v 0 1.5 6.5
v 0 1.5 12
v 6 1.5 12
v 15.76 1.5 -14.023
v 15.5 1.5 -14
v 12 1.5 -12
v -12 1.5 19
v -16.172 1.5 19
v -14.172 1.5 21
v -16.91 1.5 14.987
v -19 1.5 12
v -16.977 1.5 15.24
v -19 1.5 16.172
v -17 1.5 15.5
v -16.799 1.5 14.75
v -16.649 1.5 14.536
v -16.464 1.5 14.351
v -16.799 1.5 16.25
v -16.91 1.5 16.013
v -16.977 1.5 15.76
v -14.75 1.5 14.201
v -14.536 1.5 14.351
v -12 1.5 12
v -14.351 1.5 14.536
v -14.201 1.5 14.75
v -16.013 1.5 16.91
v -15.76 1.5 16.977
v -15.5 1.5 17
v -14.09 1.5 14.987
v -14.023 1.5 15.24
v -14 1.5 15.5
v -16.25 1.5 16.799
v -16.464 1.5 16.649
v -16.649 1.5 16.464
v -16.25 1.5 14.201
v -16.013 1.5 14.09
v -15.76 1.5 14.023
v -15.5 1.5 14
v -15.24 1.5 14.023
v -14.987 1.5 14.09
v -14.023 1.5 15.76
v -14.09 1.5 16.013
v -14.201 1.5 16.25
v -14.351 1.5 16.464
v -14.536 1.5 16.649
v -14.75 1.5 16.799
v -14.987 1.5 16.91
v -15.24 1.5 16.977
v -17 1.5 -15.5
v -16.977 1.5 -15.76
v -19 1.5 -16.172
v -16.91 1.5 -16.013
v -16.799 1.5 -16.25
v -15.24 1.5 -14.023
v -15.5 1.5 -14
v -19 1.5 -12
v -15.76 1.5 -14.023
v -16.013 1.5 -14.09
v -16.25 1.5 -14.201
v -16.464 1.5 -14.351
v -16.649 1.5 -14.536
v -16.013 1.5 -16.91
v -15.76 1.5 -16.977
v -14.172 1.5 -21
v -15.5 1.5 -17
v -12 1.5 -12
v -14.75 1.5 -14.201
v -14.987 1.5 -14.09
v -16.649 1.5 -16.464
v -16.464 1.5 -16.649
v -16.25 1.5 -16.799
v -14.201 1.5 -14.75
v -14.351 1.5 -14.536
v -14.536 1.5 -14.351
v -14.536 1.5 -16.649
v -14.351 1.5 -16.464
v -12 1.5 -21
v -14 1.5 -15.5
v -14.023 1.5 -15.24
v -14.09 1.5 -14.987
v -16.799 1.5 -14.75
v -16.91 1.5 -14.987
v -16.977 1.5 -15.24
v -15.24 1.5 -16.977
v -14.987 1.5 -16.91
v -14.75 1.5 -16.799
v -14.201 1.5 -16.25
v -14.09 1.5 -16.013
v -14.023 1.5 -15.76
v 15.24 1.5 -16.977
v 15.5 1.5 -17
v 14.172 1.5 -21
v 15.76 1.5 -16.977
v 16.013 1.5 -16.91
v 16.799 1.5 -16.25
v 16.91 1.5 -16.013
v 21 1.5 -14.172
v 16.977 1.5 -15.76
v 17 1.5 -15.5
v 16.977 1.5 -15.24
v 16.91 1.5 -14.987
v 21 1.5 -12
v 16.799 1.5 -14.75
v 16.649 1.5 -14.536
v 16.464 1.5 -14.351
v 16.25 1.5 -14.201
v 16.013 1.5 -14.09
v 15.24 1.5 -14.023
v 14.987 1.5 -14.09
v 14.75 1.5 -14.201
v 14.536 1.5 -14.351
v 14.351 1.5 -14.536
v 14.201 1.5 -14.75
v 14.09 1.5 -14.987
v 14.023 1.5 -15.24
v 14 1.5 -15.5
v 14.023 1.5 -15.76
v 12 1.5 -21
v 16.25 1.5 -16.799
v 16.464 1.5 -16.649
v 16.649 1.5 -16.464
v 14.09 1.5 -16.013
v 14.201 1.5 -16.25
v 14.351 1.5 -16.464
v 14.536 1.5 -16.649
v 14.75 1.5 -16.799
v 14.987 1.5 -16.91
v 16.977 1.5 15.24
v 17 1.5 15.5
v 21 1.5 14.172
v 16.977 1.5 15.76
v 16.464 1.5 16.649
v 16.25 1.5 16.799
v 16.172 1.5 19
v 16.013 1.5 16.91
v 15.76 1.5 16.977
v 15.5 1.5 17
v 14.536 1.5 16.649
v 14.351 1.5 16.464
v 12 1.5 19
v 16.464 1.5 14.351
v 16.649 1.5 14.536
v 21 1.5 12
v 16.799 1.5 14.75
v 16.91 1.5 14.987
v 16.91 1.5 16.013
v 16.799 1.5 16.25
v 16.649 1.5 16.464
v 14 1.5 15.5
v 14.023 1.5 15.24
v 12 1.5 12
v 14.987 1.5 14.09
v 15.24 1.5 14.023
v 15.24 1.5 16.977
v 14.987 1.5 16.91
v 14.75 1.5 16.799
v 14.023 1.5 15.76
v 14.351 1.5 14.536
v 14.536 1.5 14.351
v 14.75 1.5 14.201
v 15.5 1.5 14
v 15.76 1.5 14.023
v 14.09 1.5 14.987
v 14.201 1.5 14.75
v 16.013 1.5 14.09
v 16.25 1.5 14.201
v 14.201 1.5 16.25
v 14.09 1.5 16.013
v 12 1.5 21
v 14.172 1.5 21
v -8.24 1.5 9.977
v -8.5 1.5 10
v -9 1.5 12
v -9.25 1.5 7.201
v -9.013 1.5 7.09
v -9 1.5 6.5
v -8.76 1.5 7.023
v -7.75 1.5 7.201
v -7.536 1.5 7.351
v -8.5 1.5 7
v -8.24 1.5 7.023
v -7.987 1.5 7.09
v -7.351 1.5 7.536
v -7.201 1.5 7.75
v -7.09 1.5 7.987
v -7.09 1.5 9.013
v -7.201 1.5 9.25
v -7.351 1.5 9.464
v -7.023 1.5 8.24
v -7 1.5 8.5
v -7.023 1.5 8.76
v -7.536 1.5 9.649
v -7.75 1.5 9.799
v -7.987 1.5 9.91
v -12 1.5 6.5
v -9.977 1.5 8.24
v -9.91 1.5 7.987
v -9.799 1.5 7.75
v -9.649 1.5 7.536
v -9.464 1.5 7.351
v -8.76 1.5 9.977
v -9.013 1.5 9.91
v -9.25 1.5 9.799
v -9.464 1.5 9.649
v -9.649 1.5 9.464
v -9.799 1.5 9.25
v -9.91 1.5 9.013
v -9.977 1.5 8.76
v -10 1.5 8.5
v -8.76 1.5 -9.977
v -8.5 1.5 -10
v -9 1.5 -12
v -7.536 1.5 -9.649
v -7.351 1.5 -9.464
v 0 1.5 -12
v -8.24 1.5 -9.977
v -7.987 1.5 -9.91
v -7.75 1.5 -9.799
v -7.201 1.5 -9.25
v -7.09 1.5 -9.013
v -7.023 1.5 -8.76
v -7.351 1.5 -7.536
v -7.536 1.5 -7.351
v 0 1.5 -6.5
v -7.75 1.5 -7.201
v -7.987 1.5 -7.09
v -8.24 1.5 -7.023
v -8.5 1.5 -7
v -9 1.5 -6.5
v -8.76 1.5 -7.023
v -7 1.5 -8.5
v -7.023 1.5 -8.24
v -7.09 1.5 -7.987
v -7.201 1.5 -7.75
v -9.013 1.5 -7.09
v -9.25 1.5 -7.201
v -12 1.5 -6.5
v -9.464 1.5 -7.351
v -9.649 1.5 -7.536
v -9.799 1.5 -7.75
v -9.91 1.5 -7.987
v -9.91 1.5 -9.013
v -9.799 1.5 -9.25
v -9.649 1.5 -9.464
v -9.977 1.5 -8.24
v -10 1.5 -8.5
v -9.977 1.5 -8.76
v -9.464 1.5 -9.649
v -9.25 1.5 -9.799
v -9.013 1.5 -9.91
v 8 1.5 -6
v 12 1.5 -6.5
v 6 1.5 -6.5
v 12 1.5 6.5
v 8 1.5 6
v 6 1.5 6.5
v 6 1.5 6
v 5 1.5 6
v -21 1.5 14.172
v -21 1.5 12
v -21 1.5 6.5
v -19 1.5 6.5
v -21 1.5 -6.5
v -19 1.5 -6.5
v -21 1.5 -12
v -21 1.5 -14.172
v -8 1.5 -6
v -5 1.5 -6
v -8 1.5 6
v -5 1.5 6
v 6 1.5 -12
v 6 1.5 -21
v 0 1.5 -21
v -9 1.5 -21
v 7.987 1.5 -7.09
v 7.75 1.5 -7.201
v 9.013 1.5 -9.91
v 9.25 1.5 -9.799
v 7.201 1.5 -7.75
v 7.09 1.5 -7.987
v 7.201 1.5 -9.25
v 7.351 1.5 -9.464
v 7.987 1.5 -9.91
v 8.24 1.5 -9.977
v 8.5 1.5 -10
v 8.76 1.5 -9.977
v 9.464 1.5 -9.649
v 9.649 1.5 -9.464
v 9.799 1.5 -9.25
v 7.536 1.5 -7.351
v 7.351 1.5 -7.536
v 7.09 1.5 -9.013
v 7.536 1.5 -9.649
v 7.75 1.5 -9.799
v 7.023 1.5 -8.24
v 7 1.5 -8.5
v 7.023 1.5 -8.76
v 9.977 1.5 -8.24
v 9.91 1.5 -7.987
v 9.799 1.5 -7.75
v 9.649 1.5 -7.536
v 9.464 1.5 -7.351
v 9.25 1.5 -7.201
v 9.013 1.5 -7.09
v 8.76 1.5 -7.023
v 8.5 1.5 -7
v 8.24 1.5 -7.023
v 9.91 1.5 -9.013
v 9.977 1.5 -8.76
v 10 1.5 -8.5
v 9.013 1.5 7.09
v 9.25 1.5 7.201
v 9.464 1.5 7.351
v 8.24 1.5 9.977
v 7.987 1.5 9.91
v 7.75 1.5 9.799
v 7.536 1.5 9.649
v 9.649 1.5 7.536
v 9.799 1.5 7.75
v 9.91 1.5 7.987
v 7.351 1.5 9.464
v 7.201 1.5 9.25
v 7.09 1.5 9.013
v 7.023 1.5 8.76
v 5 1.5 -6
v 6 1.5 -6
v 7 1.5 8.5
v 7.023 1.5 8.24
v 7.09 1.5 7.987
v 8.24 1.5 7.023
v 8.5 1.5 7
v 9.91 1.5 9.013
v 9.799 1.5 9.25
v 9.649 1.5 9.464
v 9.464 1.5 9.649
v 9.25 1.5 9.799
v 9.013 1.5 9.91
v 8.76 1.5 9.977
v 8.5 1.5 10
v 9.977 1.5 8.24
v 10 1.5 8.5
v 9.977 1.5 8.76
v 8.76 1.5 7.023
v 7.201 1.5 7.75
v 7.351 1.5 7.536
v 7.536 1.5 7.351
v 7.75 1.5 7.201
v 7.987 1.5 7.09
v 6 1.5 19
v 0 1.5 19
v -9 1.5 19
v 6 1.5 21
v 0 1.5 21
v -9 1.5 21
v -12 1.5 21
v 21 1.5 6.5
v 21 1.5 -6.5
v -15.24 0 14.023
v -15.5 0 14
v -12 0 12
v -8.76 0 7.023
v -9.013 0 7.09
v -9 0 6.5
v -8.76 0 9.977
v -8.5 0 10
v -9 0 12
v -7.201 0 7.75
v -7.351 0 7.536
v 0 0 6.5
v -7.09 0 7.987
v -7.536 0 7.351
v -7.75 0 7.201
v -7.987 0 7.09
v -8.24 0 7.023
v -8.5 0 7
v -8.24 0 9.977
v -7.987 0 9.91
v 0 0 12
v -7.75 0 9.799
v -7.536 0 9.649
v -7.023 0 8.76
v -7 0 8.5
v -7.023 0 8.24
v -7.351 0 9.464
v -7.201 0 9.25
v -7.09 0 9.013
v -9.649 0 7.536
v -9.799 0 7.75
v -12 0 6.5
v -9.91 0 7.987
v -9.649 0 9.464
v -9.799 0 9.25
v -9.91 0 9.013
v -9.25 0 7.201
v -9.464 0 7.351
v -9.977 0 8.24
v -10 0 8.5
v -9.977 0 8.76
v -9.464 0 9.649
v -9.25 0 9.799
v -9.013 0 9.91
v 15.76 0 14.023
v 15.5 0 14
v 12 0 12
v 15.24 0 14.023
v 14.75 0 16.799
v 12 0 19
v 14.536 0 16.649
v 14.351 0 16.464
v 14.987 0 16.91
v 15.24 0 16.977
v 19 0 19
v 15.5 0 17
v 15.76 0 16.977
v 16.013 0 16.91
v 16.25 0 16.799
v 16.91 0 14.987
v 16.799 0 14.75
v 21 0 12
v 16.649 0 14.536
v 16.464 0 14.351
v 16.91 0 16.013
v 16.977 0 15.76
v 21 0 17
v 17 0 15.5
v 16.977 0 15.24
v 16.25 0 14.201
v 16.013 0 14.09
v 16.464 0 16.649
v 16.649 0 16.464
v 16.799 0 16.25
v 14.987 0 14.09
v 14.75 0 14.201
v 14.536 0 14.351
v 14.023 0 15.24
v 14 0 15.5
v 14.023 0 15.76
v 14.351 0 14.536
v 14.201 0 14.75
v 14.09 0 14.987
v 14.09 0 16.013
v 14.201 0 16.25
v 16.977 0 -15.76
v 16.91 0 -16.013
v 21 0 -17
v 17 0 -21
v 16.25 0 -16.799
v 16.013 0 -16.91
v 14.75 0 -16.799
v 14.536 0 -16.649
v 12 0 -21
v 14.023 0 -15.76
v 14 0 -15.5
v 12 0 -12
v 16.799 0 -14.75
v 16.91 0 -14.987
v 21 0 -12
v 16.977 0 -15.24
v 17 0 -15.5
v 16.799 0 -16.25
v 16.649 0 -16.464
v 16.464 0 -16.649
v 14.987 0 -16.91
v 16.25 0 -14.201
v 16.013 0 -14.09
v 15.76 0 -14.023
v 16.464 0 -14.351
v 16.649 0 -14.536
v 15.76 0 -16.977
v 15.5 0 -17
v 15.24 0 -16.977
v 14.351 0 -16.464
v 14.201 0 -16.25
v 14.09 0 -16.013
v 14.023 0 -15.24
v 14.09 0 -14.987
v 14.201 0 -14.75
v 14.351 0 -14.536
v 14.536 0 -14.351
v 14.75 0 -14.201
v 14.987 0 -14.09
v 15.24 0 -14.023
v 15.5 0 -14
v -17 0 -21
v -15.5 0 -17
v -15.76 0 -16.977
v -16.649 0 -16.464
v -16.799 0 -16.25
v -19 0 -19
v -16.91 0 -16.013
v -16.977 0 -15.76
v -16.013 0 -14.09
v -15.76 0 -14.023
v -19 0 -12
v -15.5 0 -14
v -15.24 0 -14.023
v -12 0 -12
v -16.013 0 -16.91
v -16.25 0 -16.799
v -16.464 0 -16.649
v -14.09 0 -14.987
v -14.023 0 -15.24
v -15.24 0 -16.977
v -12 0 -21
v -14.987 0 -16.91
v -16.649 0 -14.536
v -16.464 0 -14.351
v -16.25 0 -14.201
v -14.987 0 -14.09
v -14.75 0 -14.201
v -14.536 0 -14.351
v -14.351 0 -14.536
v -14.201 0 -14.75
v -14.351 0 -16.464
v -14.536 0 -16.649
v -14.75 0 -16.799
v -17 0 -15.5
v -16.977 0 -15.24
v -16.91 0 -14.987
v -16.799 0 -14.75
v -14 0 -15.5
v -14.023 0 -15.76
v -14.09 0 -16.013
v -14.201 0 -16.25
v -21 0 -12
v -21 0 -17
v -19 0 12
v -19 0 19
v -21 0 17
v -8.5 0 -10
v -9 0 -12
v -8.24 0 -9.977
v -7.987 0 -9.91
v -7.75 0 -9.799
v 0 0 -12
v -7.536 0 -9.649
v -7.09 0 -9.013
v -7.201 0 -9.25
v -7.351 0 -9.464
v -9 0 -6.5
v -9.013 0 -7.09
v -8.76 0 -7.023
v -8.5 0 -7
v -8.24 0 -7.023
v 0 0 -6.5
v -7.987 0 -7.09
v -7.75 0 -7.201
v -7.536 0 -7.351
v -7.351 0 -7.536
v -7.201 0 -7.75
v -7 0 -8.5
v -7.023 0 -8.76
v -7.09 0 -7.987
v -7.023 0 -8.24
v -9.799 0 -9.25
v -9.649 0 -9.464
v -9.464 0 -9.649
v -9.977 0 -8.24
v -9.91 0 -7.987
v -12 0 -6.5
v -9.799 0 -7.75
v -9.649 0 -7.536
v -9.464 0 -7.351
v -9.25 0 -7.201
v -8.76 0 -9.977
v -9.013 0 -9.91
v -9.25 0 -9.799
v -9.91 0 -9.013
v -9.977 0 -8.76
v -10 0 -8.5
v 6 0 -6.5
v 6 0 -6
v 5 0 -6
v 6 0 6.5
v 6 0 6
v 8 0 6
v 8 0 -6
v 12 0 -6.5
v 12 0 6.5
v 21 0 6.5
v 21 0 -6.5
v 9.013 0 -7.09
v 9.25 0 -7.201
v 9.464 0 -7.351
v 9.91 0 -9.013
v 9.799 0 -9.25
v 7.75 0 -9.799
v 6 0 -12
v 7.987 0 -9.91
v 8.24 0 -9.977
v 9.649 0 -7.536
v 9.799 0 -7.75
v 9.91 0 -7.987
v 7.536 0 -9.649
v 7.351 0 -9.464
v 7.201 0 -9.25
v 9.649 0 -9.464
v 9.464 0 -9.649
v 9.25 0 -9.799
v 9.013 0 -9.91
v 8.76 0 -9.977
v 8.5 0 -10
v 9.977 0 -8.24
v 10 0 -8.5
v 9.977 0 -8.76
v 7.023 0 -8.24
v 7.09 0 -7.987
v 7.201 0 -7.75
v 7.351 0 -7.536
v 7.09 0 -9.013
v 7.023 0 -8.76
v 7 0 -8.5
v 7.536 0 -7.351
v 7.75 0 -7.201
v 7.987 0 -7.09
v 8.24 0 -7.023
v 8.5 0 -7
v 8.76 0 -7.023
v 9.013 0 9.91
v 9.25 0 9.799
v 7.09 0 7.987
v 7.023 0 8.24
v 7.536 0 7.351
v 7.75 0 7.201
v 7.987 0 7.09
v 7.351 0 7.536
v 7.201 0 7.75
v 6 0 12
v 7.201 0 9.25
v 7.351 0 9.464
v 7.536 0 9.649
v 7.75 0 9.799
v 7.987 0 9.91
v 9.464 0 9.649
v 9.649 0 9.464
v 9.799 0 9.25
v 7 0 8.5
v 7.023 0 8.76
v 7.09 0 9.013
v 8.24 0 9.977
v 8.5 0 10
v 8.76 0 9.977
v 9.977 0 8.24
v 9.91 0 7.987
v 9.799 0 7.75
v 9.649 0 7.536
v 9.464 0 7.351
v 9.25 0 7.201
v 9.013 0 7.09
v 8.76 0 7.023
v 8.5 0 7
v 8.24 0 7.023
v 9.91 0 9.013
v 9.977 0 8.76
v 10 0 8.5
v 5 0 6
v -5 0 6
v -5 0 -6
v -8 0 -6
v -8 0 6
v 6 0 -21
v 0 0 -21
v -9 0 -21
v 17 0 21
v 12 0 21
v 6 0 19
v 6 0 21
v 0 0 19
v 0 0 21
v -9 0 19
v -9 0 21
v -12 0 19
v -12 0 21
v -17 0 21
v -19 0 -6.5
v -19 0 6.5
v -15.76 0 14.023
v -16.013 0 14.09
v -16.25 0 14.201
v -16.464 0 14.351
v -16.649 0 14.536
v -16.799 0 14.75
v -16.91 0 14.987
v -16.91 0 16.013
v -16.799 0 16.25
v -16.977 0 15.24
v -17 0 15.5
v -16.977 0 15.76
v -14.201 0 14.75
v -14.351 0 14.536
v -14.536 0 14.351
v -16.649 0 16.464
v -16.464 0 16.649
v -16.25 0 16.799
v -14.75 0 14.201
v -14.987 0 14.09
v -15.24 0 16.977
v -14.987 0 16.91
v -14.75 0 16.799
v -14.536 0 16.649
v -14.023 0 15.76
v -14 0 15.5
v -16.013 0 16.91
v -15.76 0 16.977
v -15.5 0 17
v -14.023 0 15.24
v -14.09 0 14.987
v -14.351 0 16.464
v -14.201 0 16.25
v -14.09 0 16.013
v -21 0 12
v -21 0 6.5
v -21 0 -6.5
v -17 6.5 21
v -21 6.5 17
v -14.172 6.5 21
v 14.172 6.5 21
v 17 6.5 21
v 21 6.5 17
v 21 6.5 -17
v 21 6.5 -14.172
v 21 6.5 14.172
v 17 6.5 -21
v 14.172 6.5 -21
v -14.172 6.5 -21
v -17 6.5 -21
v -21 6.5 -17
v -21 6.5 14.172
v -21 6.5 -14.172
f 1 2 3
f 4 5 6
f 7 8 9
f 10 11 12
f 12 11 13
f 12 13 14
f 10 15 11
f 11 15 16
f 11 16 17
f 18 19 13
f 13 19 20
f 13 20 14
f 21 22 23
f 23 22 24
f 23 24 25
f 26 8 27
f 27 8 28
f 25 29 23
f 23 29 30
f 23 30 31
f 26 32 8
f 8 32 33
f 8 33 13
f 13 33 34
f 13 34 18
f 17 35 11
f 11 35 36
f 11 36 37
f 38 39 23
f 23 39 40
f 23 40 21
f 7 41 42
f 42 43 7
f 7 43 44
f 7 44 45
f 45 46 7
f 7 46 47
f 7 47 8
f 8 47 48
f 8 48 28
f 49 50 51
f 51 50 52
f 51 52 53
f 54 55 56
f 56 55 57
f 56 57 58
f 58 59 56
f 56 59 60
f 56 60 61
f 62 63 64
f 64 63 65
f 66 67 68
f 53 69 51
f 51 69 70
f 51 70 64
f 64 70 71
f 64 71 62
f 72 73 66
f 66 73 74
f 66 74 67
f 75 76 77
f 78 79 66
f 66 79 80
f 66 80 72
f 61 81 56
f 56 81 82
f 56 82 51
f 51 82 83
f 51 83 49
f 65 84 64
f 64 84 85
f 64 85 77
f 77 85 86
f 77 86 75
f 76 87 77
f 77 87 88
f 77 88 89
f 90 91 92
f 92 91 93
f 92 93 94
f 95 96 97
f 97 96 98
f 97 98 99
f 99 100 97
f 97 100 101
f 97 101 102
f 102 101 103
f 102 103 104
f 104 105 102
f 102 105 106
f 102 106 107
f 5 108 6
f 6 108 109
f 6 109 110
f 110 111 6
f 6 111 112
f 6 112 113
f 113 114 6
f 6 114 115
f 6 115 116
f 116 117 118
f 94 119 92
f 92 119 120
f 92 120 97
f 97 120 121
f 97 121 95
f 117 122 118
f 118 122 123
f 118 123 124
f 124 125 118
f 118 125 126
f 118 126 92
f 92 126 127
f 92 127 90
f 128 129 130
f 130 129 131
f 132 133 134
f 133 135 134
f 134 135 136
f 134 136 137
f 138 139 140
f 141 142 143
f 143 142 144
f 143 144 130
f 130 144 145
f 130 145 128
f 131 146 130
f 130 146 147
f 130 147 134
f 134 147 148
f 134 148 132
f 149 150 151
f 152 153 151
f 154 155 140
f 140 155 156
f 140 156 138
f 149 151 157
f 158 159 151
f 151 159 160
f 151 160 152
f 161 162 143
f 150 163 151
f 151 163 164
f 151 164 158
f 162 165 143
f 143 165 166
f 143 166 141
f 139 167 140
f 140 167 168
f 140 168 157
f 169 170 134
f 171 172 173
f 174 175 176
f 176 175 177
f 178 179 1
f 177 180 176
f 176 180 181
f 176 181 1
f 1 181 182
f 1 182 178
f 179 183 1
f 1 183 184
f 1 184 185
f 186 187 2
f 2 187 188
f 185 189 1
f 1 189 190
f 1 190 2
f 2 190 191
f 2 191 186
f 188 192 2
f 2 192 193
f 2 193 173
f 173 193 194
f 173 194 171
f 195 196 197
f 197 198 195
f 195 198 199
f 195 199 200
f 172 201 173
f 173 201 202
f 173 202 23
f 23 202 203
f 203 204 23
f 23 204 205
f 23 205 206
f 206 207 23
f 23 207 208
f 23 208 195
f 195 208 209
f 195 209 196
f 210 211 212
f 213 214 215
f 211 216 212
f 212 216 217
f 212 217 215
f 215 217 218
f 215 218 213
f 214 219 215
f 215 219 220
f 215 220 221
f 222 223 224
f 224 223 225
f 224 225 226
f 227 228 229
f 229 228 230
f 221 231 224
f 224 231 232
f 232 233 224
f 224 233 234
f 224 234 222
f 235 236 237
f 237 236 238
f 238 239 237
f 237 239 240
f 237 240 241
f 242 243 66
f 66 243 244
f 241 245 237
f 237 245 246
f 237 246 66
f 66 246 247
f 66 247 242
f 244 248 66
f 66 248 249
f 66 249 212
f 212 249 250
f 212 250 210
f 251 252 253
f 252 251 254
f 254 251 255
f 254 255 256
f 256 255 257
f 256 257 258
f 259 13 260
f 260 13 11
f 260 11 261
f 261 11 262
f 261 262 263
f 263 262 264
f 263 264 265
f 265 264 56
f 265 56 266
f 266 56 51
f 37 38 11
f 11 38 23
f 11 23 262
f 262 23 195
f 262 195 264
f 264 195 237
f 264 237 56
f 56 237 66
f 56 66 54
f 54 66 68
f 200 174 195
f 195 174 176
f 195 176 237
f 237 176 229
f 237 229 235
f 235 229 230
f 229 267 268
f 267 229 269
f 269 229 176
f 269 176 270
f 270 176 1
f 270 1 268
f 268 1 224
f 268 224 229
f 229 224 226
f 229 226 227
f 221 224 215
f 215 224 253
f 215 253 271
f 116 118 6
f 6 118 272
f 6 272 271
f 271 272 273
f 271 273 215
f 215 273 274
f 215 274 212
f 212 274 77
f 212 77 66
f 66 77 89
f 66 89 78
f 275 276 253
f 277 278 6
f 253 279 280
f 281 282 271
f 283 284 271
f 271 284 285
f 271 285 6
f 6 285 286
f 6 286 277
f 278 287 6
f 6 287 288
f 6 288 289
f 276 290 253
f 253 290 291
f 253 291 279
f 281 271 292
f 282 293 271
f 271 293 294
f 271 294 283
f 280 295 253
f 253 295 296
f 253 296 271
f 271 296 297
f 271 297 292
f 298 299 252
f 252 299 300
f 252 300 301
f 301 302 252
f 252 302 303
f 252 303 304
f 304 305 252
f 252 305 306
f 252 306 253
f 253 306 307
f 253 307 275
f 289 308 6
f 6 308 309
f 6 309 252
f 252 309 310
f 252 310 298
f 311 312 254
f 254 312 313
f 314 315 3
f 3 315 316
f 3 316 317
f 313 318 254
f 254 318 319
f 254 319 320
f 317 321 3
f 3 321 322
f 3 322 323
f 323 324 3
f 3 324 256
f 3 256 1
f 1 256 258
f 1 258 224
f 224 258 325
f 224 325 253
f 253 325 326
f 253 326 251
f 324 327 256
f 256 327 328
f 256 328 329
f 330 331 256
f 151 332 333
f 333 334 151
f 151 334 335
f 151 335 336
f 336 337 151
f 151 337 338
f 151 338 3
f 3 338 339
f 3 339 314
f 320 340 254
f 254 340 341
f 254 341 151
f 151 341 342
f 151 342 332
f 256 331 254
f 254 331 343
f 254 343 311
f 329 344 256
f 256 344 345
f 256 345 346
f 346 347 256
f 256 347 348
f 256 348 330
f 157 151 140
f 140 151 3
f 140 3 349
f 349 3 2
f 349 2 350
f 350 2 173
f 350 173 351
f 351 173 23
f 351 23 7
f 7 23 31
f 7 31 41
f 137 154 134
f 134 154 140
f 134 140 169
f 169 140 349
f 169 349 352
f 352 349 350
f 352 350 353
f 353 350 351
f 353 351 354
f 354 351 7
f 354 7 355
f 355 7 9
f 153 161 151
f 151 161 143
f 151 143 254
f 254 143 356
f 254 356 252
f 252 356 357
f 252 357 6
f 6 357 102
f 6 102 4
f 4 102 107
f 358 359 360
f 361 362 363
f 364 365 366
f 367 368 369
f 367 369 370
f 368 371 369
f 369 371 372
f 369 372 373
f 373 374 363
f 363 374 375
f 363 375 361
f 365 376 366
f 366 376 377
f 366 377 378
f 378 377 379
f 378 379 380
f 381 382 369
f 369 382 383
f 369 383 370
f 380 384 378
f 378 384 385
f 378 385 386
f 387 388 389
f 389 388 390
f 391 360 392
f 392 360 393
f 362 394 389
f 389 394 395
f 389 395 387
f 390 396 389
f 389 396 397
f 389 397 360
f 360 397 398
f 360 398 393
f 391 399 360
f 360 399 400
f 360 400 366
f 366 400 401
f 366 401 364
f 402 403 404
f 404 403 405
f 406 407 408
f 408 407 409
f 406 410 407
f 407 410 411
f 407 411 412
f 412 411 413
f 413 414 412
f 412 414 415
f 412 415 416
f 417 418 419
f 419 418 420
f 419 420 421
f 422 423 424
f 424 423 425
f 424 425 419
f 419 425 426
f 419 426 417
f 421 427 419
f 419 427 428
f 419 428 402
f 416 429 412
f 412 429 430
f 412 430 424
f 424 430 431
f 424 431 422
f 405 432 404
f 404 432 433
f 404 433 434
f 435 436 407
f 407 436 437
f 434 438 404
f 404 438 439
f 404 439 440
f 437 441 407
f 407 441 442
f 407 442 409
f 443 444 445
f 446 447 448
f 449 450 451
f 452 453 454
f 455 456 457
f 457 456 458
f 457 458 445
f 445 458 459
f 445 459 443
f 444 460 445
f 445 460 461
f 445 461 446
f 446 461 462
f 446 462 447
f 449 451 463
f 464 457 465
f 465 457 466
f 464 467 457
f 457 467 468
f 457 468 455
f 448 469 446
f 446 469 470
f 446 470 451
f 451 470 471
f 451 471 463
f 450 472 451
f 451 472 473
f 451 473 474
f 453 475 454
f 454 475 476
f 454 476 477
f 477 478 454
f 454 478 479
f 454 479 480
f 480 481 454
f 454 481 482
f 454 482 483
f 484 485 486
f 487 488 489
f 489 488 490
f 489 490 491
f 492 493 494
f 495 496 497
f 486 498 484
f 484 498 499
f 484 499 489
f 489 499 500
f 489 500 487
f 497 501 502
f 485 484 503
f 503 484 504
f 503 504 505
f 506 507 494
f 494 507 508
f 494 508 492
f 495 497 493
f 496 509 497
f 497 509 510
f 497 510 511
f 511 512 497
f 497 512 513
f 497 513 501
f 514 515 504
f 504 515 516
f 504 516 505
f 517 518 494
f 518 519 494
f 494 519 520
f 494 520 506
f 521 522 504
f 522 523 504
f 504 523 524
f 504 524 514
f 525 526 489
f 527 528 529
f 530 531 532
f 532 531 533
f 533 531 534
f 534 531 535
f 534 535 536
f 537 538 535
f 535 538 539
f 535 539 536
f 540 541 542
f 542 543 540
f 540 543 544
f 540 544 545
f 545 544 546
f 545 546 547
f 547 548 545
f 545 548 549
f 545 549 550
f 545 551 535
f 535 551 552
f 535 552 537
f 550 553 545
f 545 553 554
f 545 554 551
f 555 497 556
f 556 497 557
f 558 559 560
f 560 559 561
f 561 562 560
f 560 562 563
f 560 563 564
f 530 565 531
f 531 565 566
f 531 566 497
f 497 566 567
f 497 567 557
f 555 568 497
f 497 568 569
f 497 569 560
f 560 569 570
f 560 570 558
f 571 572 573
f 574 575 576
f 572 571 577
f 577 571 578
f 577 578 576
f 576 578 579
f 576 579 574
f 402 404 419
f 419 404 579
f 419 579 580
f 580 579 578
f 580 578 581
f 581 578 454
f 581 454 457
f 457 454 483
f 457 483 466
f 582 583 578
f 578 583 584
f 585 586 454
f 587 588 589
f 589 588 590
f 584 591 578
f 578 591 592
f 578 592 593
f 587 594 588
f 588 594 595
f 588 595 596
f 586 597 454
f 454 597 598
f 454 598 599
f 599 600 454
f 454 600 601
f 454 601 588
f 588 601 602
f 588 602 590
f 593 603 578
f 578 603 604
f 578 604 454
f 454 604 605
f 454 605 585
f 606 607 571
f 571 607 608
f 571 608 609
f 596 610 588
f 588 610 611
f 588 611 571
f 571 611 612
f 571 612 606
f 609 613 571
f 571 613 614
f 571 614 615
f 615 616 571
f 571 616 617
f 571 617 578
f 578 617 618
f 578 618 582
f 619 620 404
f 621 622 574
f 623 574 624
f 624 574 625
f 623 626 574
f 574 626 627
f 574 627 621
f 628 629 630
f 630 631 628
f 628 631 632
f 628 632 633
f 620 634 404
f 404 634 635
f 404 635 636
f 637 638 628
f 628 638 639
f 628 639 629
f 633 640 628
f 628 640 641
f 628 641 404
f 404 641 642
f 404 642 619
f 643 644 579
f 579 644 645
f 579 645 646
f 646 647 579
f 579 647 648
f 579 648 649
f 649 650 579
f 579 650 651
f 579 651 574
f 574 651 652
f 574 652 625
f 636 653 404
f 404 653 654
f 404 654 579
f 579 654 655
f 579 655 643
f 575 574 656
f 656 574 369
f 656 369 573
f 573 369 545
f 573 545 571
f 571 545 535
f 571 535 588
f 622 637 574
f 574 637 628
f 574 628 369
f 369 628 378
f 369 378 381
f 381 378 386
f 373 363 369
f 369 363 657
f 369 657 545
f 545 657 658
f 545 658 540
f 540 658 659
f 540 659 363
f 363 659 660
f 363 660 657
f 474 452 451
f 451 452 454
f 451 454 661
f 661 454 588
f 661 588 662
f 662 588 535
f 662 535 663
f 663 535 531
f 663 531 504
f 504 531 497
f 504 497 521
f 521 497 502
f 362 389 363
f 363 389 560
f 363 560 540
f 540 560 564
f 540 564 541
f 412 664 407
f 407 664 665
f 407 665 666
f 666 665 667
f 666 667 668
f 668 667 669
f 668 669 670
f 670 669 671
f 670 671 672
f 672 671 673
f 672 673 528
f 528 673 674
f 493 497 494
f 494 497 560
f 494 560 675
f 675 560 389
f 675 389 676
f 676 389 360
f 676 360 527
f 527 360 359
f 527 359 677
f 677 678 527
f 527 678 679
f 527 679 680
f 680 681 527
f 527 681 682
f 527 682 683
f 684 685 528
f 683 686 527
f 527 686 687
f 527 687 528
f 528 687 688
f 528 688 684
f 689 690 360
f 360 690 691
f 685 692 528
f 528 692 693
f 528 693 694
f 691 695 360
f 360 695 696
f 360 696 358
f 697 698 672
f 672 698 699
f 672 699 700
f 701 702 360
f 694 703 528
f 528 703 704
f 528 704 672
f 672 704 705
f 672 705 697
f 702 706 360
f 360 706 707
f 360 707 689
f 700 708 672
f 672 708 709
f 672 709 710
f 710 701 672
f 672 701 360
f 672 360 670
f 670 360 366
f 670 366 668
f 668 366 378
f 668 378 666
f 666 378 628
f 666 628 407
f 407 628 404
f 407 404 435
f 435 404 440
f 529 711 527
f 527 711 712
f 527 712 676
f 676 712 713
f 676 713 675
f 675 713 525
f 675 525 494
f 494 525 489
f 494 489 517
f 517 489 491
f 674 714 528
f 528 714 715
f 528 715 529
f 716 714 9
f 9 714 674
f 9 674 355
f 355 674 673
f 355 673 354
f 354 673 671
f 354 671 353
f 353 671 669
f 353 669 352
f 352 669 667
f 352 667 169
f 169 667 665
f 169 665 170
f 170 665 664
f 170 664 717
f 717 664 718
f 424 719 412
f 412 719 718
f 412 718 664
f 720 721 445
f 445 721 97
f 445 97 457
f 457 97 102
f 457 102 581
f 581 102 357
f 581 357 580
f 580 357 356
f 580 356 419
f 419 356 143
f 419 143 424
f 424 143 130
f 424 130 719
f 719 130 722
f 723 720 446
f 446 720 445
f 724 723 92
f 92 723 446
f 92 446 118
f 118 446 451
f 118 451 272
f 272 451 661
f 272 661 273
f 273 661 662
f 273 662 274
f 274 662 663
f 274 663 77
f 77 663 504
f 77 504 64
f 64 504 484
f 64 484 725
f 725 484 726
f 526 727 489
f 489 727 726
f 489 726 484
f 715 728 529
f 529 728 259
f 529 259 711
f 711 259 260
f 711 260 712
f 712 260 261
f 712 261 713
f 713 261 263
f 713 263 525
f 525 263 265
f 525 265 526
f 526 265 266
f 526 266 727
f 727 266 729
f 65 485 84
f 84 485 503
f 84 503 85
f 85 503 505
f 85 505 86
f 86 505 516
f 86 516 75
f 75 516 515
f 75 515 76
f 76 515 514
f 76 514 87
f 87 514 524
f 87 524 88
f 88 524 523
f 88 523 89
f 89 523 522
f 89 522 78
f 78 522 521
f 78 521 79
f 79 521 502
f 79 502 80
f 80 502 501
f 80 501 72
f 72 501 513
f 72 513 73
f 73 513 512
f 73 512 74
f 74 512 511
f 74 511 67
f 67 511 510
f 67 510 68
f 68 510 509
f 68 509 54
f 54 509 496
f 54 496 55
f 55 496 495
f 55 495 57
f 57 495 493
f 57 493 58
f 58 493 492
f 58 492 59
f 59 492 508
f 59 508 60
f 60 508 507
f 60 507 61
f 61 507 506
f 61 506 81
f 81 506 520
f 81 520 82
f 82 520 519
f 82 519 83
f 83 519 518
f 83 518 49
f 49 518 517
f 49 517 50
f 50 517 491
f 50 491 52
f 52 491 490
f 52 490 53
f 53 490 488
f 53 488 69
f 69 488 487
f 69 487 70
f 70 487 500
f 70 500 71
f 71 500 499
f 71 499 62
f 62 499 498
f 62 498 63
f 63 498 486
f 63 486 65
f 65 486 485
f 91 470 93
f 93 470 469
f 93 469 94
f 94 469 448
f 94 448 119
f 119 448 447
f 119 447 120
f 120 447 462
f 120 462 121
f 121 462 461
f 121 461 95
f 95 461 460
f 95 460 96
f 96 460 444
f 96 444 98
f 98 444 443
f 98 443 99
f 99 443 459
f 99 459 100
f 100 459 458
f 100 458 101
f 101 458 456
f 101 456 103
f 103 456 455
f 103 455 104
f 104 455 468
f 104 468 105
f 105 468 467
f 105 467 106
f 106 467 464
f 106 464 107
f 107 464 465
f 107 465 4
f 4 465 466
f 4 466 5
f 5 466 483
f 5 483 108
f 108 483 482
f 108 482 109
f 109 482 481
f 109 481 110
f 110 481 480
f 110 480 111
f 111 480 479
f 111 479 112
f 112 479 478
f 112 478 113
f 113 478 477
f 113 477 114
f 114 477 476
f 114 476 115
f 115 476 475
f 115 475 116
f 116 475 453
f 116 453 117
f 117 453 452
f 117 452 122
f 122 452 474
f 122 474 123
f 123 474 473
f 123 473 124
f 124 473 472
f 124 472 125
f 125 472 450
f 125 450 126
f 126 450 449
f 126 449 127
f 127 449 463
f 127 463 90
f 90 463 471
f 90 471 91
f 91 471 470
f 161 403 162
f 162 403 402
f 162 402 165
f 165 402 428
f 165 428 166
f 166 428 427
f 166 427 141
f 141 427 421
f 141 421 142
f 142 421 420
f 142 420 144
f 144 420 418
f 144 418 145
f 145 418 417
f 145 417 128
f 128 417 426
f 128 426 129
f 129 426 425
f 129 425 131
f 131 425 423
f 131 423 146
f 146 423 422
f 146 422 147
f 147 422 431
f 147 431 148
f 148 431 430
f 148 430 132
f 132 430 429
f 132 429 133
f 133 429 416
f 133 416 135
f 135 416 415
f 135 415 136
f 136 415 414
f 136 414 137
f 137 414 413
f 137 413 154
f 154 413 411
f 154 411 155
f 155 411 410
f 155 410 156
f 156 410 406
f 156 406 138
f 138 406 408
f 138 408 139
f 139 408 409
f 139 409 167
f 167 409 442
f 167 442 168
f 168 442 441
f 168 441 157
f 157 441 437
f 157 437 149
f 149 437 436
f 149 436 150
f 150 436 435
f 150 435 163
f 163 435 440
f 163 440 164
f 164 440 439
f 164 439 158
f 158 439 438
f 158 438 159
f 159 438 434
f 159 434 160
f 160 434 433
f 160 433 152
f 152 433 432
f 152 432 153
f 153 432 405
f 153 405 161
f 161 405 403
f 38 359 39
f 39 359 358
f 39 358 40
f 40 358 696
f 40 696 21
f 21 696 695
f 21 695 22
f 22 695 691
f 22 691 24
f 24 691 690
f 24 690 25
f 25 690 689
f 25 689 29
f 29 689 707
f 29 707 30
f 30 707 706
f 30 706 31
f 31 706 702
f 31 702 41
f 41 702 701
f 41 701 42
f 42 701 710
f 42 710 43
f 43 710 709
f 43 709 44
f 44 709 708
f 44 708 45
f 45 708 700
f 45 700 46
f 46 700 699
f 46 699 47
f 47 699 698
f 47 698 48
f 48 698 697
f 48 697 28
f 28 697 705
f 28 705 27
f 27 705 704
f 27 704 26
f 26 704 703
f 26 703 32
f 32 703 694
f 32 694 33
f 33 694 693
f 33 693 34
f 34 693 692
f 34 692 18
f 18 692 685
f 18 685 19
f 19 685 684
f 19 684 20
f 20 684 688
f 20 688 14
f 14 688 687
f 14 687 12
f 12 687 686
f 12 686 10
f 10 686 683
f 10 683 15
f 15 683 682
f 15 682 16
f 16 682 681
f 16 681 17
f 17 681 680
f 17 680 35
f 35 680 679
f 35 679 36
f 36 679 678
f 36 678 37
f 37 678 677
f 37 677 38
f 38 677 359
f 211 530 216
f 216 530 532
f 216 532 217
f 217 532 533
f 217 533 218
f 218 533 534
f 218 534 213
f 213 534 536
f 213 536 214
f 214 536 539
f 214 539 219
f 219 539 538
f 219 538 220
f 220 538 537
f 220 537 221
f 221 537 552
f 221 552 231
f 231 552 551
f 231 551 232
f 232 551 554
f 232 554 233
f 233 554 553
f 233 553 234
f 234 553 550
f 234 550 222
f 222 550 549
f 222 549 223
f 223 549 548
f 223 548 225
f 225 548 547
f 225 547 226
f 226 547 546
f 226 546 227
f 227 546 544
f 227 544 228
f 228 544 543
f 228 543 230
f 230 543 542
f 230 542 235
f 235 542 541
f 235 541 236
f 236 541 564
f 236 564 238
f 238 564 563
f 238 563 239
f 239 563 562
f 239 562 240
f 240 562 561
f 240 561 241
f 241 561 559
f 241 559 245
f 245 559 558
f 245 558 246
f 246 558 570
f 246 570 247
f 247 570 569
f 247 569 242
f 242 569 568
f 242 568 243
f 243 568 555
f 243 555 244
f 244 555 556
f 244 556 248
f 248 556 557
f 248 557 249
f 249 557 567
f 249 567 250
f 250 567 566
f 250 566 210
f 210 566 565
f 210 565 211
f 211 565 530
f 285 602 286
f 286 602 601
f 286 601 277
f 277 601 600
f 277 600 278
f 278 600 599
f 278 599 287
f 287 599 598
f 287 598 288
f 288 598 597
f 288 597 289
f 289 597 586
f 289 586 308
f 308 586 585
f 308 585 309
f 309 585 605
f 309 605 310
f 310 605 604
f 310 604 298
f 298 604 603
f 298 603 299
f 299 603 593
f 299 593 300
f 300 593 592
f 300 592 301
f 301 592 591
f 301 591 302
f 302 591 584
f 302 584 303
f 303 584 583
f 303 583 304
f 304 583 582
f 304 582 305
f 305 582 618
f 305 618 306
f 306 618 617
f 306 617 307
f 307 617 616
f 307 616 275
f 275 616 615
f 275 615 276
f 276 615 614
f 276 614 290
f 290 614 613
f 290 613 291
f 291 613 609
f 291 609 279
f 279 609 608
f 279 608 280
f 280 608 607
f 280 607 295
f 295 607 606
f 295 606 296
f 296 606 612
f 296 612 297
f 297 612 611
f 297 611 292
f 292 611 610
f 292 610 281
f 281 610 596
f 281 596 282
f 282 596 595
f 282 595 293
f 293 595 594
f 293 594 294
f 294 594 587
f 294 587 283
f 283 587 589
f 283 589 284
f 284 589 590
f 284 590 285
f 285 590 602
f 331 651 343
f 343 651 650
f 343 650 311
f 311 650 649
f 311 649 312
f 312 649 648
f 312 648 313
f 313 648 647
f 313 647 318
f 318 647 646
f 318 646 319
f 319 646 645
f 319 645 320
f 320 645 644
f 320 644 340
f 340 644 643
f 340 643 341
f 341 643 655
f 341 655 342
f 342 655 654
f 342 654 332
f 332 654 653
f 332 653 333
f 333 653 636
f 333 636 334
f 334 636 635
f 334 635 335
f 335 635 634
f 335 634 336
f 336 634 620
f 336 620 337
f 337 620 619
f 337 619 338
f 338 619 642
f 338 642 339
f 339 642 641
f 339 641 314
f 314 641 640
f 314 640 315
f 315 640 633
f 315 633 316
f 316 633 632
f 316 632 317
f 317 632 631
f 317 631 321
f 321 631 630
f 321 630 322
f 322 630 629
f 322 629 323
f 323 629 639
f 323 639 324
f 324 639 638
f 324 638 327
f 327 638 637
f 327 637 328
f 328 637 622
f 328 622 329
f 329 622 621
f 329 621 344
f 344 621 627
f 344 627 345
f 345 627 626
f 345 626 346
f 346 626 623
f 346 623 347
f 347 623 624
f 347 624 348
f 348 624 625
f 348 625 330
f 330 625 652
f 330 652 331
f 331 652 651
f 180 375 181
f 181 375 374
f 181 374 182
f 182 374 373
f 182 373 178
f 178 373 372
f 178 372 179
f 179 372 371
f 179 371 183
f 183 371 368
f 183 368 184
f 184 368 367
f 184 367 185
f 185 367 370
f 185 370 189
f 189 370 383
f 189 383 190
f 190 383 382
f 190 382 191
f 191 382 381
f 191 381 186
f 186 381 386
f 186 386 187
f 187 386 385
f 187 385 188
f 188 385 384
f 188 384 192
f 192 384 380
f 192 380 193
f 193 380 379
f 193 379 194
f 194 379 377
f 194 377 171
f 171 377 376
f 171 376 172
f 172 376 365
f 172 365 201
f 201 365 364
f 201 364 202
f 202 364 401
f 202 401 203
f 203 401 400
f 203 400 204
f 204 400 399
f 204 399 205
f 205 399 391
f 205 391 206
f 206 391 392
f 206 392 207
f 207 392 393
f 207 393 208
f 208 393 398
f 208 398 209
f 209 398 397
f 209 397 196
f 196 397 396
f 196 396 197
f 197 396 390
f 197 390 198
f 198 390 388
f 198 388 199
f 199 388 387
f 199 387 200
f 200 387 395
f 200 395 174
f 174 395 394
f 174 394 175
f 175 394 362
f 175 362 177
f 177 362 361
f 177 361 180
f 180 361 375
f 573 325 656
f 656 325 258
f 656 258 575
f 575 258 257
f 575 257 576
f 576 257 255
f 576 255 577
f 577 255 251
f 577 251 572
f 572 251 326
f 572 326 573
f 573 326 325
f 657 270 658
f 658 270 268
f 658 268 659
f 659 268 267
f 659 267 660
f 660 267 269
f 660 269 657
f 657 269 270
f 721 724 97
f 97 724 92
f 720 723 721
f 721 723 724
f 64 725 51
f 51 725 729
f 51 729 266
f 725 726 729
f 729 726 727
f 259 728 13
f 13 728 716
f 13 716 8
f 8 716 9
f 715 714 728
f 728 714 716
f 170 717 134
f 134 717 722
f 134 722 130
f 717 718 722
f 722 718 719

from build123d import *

# Parameters (mm, degrees)
SKETCH1_R           = 1.5
BOSS_EXTRUDE1_DEPTH = 1.5
SKETCH3_W           = 3
SKETCH3_H           = 12
CUT_EXTRUDE1_DEPTH  = 2
BOSS_EXTRUDE3_DEPTH = 5


with BuildPart() as part:
    # Sketch1 → Boss-Extrude1 (new body)
    with BuildSketch(Plane(origin=(0, 0, 0), x_dir=(1, 0, 0), z_dir=(0, 1, 0))):
        Polygon((-21, 11.5), (-21, 17), (-17, 21), (17, 21), (21, 17), (21, 11.5), (21, -11.5), (21, -17), (17, -21), (-17, -21), (-21, -17), (-21, -11.5), align=None)
        with Locations(Location((-15.5, 15.5, 0), (0, 0, 270))):
            Circle(SKETCH1_R, mode=Mode.SUBTRACT)
        with Locations(Location((15.5, 15.5, 0), (0, 0, 270))):
            Circle(SKETCH1_R, mode=Mode.SUBTRACT)
        with Locations(Location((15.5, -15.5, 0), (0, 0, 90))):
            Circle(SKETCH1_R, mode=Mode.SUBTRACT)
        with Locations(Location((-15.5, -15.5, 0), (0, 0, 90))):
            Circle(SKETCH1_R, mode=Mode.SUBTRACT)
        with Locations(Location((-8.5, 8.5, 0), (0, 0, 270))):
            Circle(SKETCH1_R, mode=Mode.SUBTRACT)
        with Locations(Location((8.5, 8.5, 0), (0, 0, 270))):
            Circle(SKETCH1_R, mode=Mode.SUBTRACT)
        with Locations(Location((8.5, -8.5, 0), (0, 0, 90))):
            Circle(SKETCH1_R, mode=Mode.SUBTRACT)
        with Locations(Location((-8.5, -8.5, 0), (0, 0, 90))):
            Circle(SKETCH1_R, mode=Mode.SUBTRACT)
    extrude(amount=BOSS_EXTRUDE1_DEPTH)

    # Sketch3 → Cut-Extrude1 (cut)
    with BuildSketch(Plane.XZ):
        with Locations((6.5, 0)):
            Rectangle(SKETCH3_W, SKETCH3_H)
        with Locations((-6.5, 0)):
            Rectangle(SKETCH3_W, SKETCH3_H)
    extrude(amount=-CUT_EXTRUDE1_DEPTH, mode=Mode.SUBTRACT)

    # Sketch2 → Boss-Extrude3 (add)
    with BuildSketch(Plane(origin=(0, 1.5, 0), x_dir=(1, 0, 0), z_dir=(0, 1, 0))):
        Polygon((17, 21), (14.171572875, 21), (15.585786438, 19.585786438), (19.585786438, 15.585786438), (21, 14.171572875), (21, 17), align=None)
        Polygon((-17, 21), (-21, 17), (-21, 14.171572875), (-19.585786438, 15.585786438), (-15.585786438, 19.585786438), (-14.171572875, 21), align=None)
        Polygon((-19.585786438, -15.585786438), (-21, -14.171572875), (-21, -17), (-17, -21), (-14.171572875, -21), (-15.585786438, -19.585786438), align=None)
        Polygon((21, -14.171572875), (14.171572875, -21), (17, -21), (21, -17), align=None)
    extrude(amount=BOSS_EXTRUDE3_DEPTH)


solid = part.part
